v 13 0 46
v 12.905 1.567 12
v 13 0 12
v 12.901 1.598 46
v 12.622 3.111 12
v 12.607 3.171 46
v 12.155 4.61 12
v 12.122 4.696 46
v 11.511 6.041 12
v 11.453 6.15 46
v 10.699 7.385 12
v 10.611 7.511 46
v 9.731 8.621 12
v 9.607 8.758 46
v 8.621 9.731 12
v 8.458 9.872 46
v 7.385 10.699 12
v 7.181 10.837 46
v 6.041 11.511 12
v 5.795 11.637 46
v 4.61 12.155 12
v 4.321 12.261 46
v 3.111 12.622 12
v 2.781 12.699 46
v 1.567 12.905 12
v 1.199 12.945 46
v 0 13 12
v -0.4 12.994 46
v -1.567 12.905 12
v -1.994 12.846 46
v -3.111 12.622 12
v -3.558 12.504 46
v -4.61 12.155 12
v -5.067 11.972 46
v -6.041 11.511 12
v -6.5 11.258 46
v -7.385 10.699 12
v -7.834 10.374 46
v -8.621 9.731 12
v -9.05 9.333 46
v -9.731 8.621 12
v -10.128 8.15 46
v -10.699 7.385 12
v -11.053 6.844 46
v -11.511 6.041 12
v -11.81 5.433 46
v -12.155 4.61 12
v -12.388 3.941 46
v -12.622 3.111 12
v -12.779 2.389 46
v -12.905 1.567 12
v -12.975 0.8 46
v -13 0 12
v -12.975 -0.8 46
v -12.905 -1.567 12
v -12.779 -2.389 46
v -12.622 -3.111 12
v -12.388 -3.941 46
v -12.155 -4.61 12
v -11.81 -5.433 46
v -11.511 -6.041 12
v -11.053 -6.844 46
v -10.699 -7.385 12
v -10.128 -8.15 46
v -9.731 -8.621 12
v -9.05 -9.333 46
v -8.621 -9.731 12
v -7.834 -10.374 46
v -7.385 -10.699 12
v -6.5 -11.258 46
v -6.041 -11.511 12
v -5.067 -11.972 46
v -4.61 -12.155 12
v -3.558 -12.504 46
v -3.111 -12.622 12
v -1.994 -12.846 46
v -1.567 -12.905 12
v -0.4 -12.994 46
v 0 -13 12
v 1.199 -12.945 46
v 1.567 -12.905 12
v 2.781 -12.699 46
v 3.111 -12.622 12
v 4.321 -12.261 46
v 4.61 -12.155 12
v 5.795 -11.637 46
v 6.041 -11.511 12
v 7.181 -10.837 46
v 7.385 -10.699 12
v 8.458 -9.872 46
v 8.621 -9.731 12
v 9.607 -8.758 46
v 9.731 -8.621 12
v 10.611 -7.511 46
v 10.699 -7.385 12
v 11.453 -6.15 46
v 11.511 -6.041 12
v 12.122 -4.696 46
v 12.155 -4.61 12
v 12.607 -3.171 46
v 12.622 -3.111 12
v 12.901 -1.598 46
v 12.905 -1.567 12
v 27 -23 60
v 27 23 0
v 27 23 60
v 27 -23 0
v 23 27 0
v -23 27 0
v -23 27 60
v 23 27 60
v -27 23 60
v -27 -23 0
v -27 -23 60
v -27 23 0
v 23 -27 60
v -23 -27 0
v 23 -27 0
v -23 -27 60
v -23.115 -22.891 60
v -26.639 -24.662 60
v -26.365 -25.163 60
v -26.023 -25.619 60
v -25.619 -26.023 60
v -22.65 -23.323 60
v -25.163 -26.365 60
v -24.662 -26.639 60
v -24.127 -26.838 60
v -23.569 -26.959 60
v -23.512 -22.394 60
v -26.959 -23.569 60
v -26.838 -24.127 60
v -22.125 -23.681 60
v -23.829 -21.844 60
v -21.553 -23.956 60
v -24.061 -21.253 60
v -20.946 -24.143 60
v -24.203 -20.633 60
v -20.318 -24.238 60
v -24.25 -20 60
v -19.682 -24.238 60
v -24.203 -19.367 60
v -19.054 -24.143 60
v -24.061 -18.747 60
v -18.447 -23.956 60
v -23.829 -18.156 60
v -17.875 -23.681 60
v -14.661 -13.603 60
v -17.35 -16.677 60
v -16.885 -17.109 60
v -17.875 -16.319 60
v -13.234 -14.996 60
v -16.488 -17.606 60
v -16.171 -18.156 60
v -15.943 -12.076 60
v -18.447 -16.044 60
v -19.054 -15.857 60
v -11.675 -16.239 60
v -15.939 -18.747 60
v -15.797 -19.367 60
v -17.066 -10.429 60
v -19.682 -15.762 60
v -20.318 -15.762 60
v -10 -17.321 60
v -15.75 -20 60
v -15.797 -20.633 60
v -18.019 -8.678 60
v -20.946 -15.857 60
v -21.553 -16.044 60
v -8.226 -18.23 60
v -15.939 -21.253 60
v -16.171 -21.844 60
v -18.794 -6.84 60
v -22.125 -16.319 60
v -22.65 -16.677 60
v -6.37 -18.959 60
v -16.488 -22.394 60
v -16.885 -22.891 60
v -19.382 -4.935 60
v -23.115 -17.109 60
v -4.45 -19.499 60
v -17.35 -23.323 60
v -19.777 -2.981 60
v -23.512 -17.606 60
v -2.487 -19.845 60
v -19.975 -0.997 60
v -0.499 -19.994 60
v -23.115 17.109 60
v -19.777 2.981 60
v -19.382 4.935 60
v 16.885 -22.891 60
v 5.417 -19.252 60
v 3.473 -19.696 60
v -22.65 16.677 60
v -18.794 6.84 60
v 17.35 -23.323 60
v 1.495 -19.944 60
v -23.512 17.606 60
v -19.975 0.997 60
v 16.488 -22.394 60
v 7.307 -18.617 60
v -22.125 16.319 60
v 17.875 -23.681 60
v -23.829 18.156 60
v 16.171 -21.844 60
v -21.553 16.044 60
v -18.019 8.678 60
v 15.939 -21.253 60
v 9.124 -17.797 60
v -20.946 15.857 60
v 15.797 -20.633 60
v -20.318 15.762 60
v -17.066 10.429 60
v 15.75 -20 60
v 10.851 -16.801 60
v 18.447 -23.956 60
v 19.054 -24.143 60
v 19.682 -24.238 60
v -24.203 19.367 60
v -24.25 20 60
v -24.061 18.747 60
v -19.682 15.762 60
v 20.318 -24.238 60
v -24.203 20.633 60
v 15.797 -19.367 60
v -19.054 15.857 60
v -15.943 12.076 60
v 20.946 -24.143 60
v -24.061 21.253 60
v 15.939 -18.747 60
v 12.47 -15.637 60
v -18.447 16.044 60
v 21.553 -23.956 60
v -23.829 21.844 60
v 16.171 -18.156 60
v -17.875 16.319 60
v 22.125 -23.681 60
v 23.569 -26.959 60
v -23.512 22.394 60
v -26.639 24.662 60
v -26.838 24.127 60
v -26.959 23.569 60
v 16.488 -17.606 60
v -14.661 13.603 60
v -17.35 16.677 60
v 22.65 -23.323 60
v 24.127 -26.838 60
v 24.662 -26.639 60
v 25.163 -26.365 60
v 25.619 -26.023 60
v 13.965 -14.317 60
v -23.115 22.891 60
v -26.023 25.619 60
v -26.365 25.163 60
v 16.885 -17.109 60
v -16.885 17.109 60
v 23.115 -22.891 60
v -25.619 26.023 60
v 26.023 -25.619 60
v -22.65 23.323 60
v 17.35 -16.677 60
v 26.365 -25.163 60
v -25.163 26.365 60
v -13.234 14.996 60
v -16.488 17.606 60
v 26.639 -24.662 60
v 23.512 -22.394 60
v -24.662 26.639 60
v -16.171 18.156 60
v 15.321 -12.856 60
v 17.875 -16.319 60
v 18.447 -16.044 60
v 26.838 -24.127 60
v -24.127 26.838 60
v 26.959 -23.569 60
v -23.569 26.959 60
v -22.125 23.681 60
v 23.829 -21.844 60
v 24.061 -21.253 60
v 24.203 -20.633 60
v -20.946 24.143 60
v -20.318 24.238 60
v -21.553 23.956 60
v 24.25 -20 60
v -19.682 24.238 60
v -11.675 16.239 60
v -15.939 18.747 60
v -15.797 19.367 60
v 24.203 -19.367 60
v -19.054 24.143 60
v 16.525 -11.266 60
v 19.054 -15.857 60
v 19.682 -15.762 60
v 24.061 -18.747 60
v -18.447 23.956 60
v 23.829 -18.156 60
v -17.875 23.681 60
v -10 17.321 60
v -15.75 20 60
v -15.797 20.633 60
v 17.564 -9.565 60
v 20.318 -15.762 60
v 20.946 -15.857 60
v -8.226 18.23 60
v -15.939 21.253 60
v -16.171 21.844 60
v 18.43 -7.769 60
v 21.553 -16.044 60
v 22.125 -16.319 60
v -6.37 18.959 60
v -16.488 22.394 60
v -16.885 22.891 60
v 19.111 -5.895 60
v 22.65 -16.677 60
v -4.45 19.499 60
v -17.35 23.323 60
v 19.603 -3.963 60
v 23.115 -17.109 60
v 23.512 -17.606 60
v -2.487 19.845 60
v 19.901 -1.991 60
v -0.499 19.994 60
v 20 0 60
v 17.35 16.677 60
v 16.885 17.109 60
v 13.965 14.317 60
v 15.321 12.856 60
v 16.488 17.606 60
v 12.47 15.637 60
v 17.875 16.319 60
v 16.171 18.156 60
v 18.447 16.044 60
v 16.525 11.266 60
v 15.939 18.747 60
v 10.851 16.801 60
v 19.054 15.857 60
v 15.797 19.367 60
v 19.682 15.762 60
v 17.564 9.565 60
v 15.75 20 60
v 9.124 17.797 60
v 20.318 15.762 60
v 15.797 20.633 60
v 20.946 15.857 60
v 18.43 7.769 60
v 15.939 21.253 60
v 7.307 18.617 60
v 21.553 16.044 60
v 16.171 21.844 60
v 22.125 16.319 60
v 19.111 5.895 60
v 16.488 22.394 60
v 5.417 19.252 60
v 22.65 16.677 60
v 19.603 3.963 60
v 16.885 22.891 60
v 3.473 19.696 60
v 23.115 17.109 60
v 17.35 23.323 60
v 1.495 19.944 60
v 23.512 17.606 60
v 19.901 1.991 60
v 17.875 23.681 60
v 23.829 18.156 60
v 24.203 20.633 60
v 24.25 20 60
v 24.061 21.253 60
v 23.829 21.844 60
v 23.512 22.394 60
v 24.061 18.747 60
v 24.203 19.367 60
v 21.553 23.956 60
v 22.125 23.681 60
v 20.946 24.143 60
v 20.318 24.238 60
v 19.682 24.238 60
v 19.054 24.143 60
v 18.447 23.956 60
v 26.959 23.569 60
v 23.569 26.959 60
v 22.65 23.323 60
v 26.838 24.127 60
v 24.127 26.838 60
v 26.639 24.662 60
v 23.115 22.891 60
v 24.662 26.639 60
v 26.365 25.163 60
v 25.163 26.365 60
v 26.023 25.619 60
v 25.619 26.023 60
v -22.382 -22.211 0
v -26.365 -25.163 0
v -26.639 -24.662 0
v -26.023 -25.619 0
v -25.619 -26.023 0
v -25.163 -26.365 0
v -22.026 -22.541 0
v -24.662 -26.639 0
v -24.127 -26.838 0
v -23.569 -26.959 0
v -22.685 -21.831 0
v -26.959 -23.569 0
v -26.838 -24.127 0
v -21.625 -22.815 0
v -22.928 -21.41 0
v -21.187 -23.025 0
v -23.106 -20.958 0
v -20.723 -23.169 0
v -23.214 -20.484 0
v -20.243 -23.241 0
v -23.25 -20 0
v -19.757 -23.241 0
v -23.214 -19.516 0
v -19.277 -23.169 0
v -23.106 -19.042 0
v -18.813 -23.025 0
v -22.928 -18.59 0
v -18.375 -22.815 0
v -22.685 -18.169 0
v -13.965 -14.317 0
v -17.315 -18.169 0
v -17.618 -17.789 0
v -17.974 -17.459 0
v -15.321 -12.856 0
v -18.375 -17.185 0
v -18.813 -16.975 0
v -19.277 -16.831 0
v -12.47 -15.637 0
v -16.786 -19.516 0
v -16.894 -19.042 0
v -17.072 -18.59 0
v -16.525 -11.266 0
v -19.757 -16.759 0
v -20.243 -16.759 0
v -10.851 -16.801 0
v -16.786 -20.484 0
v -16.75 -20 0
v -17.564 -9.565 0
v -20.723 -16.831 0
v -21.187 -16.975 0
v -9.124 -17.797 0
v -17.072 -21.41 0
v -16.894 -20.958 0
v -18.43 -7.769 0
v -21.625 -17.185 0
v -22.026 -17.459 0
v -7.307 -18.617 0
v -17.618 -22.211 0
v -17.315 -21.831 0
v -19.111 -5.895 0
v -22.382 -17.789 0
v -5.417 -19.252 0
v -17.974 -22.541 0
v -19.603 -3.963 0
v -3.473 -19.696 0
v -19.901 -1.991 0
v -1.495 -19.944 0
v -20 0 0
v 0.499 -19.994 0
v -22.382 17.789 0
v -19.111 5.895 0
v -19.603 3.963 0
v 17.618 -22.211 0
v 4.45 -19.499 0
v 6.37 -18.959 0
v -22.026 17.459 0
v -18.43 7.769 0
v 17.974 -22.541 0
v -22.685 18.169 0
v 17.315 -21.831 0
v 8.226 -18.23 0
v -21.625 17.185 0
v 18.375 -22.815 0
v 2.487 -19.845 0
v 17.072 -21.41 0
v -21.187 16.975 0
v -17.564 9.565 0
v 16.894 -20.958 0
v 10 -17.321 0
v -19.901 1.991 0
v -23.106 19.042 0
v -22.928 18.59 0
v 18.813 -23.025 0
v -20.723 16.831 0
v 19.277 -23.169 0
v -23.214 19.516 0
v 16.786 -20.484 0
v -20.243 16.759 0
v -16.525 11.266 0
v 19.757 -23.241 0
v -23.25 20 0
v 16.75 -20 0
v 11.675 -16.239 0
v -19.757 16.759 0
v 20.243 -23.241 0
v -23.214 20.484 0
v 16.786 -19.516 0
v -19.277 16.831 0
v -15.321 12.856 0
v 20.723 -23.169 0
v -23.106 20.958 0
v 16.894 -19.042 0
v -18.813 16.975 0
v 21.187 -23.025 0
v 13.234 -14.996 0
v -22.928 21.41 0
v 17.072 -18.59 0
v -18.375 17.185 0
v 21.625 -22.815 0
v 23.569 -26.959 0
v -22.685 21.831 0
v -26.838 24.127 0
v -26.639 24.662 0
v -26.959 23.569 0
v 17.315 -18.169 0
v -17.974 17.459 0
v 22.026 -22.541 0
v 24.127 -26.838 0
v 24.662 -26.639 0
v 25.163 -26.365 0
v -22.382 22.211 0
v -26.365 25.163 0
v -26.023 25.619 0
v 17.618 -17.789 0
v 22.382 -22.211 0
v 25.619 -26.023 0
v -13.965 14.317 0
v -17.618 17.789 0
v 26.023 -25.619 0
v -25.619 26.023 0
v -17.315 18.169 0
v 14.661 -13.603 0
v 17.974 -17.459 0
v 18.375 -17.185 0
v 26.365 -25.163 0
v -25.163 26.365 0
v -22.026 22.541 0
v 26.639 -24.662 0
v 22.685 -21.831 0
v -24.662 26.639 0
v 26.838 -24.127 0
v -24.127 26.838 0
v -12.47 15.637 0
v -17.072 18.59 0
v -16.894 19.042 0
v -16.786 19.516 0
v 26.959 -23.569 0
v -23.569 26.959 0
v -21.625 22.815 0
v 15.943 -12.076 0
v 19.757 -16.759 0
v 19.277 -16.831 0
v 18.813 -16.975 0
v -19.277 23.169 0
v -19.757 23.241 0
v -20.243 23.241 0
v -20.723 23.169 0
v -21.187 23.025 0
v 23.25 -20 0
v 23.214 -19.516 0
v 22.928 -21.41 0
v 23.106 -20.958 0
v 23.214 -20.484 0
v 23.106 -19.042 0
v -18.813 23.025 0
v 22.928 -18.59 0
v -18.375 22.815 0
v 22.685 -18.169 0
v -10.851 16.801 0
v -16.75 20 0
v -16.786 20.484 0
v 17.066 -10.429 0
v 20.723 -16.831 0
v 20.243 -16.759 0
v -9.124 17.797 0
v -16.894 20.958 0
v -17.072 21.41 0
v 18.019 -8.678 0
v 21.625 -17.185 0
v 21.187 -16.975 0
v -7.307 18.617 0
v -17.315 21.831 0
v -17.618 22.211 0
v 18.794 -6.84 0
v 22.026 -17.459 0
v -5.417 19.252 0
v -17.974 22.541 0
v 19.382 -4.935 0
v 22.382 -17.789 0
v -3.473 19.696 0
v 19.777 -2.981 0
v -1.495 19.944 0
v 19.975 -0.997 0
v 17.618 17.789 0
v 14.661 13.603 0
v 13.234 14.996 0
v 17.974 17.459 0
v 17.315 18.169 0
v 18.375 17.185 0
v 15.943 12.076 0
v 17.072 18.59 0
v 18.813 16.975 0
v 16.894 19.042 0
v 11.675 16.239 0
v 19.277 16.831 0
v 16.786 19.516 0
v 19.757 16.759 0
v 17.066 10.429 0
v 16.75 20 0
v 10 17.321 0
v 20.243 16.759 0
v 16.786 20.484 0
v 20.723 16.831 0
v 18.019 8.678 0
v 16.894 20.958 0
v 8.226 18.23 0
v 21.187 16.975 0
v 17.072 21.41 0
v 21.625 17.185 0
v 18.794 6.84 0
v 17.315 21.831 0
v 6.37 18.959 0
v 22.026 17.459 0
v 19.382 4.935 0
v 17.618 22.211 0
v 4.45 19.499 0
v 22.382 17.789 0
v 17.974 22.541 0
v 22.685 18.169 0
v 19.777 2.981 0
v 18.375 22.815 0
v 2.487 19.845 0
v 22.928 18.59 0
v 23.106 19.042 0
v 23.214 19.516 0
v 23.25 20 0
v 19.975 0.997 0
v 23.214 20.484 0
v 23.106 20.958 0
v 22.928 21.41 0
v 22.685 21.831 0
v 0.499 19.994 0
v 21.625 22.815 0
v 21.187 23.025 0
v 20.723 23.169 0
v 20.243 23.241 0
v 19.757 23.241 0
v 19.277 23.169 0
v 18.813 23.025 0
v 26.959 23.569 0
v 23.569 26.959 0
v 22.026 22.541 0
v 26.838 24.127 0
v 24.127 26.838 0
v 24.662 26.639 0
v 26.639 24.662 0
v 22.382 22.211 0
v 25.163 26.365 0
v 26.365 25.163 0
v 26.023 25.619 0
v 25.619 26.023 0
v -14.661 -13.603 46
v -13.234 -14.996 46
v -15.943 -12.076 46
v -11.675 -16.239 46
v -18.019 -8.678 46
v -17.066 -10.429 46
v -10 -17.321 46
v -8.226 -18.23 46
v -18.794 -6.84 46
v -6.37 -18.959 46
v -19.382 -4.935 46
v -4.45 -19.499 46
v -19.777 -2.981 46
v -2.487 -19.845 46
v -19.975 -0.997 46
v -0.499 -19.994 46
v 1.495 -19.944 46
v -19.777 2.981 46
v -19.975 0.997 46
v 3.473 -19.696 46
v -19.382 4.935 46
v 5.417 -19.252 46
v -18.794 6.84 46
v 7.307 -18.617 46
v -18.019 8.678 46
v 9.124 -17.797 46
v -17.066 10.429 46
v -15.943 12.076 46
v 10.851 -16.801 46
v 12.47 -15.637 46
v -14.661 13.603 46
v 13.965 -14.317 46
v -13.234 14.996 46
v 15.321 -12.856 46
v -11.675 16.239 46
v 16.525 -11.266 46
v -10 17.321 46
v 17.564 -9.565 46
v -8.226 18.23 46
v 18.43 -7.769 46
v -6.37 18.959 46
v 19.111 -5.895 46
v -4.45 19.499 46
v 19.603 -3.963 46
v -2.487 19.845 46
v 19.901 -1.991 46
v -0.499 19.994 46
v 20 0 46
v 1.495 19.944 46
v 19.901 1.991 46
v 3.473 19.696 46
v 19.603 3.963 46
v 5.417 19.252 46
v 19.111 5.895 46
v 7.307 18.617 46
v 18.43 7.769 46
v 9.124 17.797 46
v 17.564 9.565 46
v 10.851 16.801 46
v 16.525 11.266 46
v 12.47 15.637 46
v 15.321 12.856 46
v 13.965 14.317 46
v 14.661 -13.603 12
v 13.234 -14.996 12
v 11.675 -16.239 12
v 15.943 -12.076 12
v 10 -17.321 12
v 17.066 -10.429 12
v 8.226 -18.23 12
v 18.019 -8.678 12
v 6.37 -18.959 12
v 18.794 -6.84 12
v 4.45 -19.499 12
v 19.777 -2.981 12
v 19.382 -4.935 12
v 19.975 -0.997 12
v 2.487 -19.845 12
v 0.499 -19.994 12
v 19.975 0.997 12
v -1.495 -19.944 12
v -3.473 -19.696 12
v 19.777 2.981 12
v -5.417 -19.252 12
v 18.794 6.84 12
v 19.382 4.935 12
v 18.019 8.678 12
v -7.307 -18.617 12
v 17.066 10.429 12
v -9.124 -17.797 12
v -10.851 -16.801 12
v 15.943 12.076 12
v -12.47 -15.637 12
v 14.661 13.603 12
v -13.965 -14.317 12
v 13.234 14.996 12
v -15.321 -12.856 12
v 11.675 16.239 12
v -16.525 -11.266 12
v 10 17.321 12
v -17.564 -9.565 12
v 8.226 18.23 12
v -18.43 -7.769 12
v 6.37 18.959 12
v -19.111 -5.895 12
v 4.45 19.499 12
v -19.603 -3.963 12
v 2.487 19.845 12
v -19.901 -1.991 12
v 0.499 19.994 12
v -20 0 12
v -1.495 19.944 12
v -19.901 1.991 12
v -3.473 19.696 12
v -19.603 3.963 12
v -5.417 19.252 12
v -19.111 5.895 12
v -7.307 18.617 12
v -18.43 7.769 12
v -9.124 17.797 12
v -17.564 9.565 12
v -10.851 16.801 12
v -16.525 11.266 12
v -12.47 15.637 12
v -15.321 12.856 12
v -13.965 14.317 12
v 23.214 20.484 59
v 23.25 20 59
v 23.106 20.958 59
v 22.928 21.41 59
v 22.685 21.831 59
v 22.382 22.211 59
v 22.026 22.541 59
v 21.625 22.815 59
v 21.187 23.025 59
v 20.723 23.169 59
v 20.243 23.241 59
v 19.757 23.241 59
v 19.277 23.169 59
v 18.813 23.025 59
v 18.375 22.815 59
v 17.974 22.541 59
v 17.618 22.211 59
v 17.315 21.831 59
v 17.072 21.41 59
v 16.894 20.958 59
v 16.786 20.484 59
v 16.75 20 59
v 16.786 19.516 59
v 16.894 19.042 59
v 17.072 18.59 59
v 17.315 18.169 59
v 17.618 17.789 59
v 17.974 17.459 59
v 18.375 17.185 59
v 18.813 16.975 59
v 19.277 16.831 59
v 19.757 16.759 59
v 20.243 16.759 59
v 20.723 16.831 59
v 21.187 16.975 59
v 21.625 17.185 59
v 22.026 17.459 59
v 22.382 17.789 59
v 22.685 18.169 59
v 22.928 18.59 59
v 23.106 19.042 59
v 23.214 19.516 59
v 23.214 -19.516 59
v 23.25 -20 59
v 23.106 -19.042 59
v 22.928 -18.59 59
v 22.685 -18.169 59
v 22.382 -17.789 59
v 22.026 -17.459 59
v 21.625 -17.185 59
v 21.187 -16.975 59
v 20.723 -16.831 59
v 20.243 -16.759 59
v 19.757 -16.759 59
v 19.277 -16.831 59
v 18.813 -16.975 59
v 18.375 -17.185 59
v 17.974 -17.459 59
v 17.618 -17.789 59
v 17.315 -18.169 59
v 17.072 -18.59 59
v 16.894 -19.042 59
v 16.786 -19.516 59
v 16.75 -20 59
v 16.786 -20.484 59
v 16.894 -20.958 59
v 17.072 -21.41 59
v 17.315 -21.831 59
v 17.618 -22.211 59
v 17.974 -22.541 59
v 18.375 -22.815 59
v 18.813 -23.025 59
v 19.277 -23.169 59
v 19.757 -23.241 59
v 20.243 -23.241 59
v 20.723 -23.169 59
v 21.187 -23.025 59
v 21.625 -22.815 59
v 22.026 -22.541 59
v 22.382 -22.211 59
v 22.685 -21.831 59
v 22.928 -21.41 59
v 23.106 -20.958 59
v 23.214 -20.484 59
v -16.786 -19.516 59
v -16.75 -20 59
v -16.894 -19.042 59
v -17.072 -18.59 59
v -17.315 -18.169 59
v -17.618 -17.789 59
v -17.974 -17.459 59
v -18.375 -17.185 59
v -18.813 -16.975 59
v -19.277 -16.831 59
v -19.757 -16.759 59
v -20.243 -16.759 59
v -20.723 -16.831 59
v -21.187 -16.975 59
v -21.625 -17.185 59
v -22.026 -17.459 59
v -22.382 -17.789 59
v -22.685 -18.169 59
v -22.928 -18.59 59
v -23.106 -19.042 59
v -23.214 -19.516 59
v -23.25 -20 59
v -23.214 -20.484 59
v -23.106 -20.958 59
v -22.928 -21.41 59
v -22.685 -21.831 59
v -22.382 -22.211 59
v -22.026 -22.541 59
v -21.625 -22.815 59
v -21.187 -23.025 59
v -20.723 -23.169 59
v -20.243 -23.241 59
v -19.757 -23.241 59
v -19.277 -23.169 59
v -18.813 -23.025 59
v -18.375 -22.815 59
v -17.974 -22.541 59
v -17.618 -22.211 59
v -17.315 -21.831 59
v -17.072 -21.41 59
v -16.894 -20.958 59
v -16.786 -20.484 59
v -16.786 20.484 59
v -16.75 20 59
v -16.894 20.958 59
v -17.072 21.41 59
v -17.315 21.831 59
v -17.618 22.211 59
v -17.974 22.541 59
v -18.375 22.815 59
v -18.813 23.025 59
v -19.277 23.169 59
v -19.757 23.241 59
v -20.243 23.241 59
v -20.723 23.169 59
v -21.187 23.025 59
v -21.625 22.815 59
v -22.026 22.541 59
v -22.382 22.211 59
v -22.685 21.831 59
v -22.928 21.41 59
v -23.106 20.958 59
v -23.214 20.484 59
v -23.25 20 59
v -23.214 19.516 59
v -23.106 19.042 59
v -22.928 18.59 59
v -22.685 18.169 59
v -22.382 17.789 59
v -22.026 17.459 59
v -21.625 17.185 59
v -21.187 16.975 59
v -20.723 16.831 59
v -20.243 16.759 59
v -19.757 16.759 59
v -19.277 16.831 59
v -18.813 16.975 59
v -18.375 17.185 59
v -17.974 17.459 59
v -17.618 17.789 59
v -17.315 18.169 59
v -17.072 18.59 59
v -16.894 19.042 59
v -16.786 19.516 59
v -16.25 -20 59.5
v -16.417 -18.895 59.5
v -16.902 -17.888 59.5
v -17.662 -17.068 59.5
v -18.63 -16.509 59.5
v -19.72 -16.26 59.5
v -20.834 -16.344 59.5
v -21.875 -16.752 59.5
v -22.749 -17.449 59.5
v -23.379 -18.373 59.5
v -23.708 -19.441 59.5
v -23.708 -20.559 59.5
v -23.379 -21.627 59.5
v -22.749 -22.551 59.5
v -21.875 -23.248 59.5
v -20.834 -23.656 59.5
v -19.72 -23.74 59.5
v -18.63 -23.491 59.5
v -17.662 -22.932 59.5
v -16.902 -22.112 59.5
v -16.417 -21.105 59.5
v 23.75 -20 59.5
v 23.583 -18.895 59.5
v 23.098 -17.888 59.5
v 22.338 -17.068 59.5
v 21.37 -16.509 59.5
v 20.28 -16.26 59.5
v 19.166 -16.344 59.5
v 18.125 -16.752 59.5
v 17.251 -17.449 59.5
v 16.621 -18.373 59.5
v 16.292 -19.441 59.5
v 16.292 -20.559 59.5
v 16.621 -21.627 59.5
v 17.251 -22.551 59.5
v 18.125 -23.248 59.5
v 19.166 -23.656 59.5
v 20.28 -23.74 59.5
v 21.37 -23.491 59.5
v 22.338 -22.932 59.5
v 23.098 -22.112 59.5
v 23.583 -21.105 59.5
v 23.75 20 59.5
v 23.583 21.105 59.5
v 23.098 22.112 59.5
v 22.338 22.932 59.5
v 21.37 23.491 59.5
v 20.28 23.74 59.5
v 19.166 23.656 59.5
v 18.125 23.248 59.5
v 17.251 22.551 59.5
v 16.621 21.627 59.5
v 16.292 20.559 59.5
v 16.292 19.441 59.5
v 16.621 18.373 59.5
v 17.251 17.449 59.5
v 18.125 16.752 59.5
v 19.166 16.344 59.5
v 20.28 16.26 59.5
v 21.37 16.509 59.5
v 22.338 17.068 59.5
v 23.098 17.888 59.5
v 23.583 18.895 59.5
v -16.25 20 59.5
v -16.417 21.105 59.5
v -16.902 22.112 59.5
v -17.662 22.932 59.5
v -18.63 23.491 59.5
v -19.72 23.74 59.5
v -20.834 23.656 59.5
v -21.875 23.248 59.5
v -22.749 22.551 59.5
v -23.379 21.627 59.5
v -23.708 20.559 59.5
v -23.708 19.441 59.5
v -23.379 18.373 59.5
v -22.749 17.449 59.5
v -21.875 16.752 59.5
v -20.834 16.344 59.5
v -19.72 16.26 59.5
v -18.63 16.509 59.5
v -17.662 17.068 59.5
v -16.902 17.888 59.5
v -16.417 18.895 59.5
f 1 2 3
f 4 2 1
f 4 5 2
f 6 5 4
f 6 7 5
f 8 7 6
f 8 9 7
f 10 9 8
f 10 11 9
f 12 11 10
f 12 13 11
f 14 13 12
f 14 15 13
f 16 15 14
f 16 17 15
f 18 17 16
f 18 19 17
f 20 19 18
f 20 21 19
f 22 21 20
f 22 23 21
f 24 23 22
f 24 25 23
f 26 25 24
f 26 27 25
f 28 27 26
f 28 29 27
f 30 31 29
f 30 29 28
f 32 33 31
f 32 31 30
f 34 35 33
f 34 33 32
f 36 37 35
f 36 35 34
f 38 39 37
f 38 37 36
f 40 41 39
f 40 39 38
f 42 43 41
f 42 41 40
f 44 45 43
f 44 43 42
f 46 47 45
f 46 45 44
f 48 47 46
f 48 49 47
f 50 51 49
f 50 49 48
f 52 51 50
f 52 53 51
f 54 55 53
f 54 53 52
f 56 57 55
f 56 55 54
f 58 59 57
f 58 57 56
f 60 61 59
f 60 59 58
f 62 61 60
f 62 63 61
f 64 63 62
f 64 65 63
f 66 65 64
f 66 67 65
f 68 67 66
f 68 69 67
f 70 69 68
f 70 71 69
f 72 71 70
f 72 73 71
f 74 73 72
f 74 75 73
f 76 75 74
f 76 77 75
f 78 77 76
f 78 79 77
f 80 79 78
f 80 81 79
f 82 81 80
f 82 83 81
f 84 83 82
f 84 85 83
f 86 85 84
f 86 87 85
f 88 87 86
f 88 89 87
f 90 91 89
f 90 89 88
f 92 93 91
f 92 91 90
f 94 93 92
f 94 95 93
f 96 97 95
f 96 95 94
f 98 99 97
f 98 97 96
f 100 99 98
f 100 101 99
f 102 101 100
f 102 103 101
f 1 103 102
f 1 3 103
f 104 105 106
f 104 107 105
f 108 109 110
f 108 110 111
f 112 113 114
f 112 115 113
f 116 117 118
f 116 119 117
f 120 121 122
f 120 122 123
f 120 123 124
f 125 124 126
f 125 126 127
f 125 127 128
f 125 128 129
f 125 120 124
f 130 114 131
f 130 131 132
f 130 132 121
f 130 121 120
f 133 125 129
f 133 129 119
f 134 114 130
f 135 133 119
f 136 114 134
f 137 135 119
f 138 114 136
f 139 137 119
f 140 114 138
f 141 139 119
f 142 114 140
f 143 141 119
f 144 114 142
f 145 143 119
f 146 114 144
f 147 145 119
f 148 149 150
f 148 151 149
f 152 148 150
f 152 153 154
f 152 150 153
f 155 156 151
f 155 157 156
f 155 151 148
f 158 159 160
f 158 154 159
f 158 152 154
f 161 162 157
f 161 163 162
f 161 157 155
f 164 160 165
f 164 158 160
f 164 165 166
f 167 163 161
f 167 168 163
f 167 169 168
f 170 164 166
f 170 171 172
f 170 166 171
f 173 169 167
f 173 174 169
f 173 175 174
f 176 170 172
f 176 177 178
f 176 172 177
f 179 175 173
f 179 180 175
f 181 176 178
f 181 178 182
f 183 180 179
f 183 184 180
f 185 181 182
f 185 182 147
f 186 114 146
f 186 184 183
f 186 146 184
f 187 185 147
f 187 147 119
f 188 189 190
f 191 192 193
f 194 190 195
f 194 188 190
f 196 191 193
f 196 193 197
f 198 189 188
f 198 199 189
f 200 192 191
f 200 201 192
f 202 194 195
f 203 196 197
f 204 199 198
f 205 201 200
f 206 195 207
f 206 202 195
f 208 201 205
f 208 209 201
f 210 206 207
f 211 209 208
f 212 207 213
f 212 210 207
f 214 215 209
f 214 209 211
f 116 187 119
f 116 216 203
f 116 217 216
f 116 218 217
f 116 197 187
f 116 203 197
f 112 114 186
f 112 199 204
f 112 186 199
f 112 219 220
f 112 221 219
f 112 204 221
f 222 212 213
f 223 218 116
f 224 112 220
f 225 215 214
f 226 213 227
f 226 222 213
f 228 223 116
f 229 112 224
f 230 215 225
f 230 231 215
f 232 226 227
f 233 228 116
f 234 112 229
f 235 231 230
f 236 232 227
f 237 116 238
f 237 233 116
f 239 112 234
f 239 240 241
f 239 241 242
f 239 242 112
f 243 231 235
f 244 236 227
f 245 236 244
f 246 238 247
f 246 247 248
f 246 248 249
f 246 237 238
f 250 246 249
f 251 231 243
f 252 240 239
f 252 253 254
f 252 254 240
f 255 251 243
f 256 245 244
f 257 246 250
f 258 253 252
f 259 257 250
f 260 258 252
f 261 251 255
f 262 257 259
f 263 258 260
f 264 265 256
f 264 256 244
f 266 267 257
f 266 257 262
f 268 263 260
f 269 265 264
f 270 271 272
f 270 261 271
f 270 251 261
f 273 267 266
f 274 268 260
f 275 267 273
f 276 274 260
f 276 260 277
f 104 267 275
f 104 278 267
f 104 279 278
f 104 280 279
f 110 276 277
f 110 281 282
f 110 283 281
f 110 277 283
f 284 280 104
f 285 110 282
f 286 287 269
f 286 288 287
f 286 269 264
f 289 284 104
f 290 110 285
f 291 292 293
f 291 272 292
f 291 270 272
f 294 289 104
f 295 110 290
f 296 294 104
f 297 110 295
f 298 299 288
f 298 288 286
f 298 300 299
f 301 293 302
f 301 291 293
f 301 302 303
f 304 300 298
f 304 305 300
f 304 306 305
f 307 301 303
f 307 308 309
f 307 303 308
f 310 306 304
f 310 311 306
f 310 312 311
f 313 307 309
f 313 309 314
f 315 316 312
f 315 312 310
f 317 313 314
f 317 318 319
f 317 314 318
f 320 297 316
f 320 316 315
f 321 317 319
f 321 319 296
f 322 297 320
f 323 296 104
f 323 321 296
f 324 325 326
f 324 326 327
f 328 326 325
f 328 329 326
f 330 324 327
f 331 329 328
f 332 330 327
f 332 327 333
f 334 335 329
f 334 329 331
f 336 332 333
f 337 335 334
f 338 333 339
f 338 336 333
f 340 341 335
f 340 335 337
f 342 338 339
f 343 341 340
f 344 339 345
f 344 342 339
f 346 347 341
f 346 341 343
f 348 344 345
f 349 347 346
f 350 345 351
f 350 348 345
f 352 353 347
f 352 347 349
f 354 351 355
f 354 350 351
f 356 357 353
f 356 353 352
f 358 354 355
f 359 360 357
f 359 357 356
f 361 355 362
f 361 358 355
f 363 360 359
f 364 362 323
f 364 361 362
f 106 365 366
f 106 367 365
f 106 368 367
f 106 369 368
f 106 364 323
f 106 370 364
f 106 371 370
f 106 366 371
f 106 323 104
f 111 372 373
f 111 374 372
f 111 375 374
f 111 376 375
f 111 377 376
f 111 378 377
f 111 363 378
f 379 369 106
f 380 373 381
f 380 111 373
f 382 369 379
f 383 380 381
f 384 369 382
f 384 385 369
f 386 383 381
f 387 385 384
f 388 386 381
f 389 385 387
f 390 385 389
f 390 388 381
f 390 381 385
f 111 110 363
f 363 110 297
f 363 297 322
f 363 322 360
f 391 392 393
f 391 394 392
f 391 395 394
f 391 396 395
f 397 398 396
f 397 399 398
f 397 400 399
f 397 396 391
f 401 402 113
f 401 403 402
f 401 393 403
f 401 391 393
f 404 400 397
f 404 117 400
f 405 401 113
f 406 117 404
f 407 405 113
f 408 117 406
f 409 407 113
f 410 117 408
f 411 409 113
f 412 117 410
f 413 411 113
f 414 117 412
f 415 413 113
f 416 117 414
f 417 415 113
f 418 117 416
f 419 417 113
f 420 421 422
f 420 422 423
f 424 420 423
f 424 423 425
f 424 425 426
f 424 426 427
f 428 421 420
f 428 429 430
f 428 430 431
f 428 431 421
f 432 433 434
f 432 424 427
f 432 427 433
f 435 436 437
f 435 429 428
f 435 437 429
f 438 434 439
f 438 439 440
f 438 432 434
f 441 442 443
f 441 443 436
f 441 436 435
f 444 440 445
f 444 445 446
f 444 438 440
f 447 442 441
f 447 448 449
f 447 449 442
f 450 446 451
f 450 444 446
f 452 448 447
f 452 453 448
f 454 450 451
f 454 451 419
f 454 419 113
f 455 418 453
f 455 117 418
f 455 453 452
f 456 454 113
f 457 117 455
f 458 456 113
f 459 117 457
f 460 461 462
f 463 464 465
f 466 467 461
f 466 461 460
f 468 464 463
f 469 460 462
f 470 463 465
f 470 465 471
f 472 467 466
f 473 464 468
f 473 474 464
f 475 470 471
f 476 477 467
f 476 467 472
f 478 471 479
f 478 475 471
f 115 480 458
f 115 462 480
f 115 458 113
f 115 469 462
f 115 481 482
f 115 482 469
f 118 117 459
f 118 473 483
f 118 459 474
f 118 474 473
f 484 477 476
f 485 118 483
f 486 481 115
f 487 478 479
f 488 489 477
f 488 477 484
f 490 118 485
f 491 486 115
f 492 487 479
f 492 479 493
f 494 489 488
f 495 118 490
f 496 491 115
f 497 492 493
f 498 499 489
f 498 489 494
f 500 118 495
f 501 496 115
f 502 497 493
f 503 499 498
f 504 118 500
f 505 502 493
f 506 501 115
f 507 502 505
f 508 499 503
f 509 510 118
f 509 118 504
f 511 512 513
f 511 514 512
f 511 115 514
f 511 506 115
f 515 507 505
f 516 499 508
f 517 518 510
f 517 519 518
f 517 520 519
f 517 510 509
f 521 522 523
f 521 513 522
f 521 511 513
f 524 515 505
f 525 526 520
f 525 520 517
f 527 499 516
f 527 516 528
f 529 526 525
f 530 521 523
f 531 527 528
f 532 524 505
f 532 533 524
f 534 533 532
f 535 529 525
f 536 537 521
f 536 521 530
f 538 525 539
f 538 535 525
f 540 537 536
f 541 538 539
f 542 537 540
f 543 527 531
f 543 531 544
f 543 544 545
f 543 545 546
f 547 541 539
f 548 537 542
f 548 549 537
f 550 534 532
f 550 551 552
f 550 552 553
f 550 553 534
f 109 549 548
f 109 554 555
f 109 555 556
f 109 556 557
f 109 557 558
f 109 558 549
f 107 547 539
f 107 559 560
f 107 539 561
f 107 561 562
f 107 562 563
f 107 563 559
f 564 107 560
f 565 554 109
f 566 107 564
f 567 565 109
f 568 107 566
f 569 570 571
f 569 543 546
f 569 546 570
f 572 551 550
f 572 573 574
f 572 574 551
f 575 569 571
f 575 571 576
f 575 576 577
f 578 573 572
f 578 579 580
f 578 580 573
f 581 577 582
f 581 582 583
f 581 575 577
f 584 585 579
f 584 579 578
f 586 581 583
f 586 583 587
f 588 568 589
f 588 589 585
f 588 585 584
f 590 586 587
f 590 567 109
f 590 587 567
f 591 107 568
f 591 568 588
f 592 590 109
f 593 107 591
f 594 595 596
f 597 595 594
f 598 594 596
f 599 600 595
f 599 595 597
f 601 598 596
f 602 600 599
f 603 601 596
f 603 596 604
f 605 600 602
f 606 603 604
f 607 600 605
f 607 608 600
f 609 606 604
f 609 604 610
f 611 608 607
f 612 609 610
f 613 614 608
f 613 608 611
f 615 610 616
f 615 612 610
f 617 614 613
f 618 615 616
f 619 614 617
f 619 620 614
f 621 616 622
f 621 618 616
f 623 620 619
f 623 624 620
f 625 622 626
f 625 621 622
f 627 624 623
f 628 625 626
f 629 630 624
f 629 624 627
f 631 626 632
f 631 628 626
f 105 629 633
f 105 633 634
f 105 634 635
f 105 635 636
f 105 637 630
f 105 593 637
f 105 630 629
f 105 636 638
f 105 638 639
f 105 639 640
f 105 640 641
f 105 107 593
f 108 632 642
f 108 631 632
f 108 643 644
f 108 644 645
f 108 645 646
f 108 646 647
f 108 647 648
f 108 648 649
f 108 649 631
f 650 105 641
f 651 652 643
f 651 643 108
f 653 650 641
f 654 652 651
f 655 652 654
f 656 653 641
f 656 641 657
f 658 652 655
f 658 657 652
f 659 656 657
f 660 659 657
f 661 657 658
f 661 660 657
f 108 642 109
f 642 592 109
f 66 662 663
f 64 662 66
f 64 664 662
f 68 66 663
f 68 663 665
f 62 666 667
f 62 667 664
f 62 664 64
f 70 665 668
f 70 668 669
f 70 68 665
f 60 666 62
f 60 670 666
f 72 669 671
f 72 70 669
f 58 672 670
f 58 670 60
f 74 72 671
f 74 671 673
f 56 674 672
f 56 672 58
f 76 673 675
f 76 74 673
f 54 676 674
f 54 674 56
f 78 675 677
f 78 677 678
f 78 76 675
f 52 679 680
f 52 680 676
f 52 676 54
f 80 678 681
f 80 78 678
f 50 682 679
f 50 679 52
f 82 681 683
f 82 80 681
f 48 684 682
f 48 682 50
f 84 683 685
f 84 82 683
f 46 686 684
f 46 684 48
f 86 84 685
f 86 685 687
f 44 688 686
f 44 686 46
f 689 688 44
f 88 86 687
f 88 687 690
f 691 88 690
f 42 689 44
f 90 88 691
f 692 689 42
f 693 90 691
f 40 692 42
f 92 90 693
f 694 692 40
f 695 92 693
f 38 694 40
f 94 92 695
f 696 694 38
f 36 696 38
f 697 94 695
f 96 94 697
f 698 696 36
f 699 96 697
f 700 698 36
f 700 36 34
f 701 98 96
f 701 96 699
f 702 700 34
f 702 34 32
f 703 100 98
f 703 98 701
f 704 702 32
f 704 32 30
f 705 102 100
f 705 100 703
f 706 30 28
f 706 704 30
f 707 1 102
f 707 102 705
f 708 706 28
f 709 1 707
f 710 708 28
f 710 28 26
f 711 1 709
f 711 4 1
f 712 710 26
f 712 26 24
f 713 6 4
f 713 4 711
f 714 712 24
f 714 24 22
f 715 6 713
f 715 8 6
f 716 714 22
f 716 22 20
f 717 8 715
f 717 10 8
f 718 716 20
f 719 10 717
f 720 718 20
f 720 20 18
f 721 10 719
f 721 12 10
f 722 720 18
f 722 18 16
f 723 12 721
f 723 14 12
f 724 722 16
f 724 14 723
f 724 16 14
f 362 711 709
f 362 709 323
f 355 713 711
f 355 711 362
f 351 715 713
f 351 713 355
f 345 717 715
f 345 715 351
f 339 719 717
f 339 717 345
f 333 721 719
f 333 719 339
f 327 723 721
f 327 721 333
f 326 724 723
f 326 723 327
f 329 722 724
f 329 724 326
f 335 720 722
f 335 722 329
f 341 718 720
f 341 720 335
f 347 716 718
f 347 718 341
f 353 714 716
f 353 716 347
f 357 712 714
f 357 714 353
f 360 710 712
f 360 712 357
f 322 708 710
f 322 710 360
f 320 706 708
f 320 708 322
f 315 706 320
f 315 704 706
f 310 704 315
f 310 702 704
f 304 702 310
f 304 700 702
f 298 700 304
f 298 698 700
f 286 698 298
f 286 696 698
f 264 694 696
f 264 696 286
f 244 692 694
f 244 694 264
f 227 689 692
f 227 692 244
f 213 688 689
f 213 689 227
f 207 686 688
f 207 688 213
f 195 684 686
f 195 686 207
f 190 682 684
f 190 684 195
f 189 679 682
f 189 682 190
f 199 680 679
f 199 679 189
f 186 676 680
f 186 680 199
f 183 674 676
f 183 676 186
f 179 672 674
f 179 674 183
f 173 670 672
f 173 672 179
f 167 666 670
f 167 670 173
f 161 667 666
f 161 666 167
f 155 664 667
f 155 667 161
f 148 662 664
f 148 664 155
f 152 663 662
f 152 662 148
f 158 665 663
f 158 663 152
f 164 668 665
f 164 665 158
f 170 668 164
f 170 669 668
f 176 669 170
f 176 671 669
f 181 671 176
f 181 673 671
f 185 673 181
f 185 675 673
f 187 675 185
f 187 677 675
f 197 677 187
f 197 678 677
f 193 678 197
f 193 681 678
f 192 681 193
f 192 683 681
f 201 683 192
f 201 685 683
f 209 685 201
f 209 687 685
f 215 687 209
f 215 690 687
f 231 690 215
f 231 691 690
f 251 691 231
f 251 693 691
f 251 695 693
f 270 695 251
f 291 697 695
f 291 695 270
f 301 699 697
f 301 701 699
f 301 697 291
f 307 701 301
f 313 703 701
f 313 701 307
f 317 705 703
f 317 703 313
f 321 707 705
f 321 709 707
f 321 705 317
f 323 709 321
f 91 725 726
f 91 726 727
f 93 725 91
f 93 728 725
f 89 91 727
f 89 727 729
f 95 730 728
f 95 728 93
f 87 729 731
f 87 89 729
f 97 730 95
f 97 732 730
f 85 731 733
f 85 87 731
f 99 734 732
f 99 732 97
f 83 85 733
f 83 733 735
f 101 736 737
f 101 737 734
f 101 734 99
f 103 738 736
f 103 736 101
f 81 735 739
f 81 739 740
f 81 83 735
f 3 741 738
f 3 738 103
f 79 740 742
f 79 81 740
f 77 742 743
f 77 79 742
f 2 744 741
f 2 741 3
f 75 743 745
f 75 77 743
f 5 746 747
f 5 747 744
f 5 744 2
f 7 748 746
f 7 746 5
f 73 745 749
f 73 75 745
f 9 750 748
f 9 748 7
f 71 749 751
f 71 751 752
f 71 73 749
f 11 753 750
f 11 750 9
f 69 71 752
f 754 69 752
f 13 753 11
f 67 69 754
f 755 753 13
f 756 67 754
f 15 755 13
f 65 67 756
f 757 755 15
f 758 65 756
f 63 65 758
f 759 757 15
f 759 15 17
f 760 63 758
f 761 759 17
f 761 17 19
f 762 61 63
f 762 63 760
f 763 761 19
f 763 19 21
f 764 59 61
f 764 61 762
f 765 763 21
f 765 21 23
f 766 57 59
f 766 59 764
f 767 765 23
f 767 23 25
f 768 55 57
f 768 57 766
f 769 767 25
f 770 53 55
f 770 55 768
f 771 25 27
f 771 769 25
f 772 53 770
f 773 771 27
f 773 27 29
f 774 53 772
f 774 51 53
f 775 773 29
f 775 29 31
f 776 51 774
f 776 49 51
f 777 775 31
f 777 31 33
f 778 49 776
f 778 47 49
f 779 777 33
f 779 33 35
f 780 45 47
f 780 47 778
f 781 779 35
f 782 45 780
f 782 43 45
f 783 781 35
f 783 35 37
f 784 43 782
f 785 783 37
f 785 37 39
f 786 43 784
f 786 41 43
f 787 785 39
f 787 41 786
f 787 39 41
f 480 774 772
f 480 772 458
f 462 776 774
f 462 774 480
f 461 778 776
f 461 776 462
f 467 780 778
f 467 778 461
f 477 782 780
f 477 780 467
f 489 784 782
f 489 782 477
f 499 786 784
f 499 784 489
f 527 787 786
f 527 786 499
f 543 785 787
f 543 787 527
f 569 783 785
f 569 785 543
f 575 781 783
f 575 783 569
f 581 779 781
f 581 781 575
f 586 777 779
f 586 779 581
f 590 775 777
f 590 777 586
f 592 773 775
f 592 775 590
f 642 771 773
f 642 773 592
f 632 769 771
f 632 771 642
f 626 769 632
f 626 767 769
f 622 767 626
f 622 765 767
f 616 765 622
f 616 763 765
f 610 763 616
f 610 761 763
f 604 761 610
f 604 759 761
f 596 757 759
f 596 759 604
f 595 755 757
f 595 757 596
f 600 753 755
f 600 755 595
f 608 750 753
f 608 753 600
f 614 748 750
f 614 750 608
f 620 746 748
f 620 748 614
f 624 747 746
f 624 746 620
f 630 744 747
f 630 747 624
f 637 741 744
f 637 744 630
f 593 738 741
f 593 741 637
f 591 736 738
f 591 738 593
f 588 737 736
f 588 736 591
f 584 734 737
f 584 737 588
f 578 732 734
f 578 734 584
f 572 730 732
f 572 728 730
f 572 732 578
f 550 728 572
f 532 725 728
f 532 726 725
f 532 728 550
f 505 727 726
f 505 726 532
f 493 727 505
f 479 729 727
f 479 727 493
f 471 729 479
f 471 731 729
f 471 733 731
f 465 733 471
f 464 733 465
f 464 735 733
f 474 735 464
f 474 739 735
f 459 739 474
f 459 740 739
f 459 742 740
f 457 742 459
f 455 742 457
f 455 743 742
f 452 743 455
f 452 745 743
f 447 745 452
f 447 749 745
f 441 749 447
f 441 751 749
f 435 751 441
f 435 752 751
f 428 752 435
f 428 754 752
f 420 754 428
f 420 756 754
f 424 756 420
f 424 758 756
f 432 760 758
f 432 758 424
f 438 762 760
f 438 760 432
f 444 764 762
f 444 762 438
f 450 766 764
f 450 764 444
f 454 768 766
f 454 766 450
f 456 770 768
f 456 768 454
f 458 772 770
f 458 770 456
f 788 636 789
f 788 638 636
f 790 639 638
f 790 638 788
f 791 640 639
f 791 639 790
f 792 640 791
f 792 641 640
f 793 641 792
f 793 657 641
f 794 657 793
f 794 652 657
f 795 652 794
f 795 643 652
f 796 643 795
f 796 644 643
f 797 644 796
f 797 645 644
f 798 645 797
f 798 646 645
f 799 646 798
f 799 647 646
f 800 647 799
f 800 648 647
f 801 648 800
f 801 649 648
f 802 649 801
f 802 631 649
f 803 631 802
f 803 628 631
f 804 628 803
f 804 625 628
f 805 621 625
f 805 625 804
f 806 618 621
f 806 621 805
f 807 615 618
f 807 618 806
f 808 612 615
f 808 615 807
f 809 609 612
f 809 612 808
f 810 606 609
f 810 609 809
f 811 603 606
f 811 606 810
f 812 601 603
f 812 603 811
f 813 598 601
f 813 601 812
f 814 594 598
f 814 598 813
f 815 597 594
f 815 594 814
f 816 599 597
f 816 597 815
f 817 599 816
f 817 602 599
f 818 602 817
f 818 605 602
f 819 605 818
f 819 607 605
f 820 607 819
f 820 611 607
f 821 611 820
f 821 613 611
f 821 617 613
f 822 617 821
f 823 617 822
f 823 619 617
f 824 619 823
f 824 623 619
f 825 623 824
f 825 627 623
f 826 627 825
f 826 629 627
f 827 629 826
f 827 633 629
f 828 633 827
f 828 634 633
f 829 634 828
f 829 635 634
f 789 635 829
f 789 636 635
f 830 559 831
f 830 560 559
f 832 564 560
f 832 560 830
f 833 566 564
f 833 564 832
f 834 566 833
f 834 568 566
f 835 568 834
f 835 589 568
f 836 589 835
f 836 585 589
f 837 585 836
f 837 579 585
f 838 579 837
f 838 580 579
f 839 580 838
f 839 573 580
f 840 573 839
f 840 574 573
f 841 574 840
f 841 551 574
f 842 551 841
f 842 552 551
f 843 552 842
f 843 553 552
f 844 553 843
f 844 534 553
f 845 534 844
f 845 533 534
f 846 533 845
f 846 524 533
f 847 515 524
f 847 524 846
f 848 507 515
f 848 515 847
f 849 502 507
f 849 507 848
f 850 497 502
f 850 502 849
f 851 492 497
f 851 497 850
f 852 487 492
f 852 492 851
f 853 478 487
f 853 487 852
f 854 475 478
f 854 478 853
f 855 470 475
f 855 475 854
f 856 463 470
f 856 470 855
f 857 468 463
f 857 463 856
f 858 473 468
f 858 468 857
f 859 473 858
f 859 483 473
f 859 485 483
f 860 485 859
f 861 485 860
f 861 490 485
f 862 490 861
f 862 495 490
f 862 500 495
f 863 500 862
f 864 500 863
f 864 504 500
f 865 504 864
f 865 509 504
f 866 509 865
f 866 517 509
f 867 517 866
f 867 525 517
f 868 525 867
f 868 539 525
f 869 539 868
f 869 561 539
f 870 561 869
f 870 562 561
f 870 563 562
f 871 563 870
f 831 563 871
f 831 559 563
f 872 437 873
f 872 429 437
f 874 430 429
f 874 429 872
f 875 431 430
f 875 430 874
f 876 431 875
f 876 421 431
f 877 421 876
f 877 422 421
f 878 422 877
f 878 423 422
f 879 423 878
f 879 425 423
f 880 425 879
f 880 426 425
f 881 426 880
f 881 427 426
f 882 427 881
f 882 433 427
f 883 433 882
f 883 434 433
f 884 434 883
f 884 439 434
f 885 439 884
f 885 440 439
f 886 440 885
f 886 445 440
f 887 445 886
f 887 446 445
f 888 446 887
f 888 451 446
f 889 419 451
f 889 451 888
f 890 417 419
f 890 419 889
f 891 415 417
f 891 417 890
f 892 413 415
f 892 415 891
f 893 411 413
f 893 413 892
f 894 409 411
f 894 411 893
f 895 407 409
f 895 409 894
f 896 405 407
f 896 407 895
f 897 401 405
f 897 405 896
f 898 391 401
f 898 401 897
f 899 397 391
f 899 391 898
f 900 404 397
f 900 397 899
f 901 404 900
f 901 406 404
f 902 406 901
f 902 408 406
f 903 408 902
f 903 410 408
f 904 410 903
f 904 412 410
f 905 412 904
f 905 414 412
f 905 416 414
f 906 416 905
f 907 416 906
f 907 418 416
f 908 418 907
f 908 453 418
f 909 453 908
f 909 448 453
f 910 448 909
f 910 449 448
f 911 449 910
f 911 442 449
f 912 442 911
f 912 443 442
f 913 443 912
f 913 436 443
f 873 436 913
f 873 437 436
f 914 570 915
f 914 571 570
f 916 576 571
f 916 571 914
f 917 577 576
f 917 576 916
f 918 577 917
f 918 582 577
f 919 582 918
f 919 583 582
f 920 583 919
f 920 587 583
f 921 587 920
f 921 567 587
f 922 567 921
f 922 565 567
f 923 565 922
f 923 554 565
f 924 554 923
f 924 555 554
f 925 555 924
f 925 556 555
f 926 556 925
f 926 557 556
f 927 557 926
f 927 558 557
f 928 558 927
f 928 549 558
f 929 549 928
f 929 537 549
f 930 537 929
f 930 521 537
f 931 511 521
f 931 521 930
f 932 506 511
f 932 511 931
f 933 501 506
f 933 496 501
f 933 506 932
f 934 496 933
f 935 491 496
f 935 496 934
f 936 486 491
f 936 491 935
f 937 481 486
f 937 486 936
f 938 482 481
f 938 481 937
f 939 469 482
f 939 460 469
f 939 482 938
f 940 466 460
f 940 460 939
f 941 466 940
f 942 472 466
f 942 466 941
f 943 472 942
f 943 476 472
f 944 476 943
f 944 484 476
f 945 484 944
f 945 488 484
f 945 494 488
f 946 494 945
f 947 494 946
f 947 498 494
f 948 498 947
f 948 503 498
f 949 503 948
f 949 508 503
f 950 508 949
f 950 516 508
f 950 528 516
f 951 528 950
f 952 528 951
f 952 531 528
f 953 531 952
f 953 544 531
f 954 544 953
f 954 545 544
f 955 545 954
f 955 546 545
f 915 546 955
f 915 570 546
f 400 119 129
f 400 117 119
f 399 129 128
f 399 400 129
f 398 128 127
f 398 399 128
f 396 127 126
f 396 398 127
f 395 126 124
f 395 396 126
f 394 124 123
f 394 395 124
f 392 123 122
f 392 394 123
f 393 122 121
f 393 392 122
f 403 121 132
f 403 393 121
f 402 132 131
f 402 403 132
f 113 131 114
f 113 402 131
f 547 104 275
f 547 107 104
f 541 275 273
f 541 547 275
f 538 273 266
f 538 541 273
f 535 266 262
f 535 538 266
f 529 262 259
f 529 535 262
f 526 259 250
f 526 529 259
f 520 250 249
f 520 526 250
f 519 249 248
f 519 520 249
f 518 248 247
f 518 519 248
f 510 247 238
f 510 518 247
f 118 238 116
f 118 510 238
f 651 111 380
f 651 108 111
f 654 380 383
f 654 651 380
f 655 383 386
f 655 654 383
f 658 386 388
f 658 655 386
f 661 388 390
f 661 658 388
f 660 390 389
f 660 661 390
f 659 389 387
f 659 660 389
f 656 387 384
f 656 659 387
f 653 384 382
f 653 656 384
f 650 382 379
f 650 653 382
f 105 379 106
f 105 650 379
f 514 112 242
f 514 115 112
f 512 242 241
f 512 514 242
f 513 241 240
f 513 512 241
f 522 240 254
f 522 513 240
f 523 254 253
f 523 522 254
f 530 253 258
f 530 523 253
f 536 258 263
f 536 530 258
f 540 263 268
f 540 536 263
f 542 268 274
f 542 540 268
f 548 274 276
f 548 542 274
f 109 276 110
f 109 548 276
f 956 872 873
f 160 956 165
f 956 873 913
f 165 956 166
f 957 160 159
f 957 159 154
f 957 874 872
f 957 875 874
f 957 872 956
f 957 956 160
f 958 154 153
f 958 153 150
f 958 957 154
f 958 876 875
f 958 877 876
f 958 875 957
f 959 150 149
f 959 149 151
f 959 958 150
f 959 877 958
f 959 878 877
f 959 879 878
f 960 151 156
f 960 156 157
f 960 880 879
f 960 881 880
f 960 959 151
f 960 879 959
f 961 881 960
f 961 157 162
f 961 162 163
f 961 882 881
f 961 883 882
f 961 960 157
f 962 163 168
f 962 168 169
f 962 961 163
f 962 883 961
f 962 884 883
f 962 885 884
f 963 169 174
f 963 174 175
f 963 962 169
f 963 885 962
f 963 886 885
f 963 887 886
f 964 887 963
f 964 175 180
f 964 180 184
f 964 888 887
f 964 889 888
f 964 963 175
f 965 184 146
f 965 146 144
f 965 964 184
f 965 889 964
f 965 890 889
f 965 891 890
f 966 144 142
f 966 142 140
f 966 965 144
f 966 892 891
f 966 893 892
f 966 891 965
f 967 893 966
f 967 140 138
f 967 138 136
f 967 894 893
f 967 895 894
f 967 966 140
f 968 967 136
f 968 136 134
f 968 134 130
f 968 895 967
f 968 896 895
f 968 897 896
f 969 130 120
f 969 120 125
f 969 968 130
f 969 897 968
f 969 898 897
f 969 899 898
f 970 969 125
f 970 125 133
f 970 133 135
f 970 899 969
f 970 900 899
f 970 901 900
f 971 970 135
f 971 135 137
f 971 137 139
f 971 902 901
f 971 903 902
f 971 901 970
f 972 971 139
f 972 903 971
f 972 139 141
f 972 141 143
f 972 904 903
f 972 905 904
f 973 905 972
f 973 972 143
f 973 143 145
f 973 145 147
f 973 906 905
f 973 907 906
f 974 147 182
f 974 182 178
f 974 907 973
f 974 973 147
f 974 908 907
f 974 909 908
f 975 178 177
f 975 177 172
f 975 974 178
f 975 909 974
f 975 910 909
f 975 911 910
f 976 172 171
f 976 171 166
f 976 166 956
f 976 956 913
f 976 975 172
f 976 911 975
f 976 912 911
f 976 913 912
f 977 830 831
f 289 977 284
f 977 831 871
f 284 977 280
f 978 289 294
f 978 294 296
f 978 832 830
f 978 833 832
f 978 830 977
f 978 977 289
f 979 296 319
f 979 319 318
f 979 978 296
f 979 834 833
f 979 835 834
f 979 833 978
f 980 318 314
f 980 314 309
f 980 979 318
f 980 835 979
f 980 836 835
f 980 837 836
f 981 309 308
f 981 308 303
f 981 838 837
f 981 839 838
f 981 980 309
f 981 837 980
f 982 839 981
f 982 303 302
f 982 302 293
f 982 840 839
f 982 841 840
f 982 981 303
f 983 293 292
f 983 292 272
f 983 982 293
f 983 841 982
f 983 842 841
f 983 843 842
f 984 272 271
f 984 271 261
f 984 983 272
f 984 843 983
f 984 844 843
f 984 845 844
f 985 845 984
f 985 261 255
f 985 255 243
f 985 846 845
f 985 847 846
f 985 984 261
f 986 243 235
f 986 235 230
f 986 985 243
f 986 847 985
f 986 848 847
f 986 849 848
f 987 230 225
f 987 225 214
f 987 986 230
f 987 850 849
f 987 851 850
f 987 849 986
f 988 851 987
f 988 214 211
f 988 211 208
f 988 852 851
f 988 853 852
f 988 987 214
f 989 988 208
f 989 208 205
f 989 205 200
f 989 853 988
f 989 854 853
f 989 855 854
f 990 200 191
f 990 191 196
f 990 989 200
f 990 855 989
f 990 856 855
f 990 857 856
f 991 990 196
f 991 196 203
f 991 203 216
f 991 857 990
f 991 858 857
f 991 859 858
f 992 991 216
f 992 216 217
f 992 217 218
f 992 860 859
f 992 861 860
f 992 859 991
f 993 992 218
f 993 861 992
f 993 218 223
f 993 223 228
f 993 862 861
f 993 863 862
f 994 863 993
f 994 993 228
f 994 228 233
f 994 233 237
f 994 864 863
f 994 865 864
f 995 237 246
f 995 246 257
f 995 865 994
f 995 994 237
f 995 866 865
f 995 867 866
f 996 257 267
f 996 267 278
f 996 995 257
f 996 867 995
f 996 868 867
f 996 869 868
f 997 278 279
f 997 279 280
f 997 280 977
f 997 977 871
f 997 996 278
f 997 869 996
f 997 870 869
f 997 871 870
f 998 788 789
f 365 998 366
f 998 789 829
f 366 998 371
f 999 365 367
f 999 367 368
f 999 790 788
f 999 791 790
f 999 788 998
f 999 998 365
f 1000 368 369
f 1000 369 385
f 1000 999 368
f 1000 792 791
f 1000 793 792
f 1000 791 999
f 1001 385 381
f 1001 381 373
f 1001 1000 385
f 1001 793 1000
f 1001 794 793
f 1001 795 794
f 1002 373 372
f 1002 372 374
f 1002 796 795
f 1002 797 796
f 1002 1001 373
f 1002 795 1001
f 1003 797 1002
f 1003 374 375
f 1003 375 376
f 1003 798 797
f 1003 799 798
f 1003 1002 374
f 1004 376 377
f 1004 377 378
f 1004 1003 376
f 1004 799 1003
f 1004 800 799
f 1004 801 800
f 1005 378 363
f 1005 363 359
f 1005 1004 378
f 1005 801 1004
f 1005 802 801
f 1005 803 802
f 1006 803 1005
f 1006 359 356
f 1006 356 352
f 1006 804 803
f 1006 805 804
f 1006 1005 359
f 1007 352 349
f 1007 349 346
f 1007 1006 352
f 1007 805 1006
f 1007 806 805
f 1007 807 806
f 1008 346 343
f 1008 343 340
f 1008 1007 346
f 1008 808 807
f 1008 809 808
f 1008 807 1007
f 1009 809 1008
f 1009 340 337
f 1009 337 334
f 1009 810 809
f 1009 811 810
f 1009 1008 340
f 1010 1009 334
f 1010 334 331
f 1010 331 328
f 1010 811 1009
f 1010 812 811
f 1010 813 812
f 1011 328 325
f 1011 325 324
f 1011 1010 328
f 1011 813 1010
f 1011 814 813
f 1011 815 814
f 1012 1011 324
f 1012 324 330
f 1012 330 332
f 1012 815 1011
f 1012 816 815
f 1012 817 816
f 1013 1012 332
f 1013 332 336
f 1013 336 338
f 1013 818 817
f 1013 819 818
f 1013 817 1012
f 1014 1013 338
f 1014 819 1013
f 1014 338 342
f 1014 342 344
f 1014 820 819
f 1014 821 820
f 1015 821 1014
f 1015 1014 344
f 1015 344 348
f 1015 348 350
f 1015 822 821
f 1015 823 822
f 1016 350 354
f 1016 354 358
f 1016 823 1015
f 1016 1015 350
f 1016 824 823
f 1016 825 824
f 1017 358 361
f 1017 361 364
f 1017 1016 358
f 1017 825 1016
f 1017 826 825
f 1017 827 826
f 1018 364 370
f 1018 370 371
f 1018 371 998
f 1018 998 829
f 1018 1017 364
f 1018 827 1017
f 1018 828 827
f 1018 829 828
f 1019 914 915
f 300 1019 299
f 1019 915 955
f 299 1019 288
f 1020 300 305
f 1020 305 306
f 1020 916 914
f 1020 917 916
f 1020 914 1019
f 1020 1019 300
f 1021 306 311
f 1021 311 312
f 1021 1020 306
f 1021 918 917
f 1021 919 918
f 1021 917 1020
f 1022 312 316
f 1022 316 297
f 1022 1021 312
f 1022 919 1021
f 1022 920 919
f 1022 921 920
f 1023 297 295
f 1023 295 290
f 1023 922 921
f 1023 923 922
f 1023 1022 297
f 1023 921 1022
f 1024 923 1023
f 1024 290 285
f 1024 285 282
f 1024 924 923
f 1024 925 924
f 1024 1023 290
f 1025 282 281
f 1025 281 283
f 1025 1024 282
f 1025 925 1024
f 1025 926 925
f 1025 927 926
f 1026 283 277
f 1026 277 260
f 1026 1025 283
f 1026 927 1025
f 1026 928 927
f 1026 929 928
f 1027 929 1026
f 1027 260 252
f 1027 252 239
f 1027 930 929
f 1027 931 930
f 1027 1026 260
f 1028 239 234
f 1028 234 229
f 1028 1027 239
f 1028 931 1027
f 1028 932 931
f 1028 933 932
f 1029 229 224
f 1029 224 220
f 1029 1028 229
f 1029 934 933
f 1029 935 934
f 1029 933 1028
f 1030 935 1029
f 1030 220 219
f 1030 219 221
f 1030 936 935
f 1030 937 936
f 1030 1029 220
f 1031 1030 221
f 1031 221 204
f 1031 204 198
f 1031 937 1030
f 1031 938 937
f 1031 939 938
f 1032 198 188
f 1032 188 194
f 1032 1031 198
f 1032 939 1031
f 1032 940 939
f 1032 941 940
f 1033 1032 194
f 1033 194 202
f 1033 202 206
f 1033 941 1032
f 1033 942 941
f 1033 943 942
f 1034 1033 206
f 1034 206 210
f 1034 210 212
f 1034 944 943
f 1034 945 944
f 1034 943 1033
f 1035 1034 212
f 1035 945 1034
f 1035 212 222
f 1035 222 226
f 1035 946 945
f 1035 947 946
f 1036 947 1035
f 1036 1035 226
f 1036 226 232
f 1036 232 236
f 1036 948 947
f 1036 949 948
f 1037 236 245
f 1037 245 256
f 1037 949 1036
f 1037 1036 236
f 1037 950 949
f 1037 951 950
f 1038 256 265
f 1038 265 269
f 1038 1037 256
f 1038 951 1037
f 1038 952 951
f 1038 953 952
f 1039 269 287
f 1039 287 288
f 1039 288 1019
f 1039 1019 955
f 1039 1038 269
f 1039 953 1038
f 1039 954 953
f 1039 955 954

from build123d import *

# Parameters (mm, degrees)
CROQUIS1_W              = 54
CROQUIS1_H              = 54
SALIENTE_EXTRUIR1_DEPTH = 60
CROQUIS2_R              = 13
CORTAR_EXTRUIR1_DEPTH   = 72.119617547
CROQUIS3_R              = 20
CORTAR_EXTRUIR2_DEPTH   = 14
CORTAR_EXTRUIR3_START   = -12
CROQUIS4_R              = 20
CORTAR_EXTRUIR3_DEPTH   = 12
CROQUIS5_R              = 3.25
CORTAR_EXTRUIR4_DEPTH   = 72.119617547
REDONDEO1_R             = 4
CHAFL_N1_SIZE           = 1


with BuildPart() as part:
    # Croquis1 → Saliente-Extruir1 (new body)
    with BuildSketch(Plane.XY):
        Rectangle(CROQUIS1_W, CROQUIS1_H)
    extrude(amount=SALIENTE_EXTRUIR1_DEPTH)

    # Croquis2 → Cortar-Extruir1 (cut, through all)
    with BuildSketch(Plane.XY.offset(60)):
        Circle(CROQUIS2_R)
    extrude(amount=-CORTAR_EXTRUIR1_DEPTH, mode=Mode.SUBTRACT)

    # Croquis3 → Cortar-Extruir2 (cut)
    with BuildSketch(Plane.XY.offset(60)):
        Circle(CROQUIS3_R)
    extrude(amount=-CORTAR_EXTRUIR2_DEPTH, mode=Mode.SUBTRACT)

    # Croquis4 → Cortar-Extruir3 (cut)
    with BuildSketch(Plane(origin=(0, 0, 0), x_dir=(-1, 0, 0), z_dir=(0, 0, -1)).offset(CORTAR_EXTRUIR3_START)):
        with Locations(Location((0, 0, 0), (0, 0, 180))):
            Circle(CROQUIS4_R)
    extrude(amount=CORTAR_EXTRUIR3_DEPTH, mode=Mode.SUBTRACT)

    # Croquis5 → Cortar-Extruir4 (cut, through all)
    with BuildSketch(Plane.XY.offset(60)):
        with Locations((20, 20)):
            Circle(CROQUIS5_R)
        with Locations((20, -20)):
            Circle(CROQUIS5_R)
        with Locations((-20, -20)):
            Circle(CROQUIS5_R)
        with Locations((-20, 20)):
            Circle(CROQUIS5_R)
    extrude(amount=-CORTAR_EXTRUIR4_DEPTH, mode=Mode.SUBTRACT)

    # Redondeo1
    redondeo1_edges = [part.edges().sort_by_distance(p)[0] for p in [
        (27, -27, 30),
        (-27, -27, 30),
        (-27, 27, 30),
        (27, 27, 30),
    ]]
    fillet(redondeo1_edges, radius=REDONDEO1_R)

    # Chaflán1
    chafl_n1_edges = [part.edges().sort_by_distance(p)[0] for p in [
        (16.75, 20, 60),
        (16.75, -20, 60),
        (-23.25, -20, 60),
        (-23.25, 20, 60),
    ]]
    chamfer(chafl_n1_edges, length=CHAFL_N1_SIZE)


solid = part.part
